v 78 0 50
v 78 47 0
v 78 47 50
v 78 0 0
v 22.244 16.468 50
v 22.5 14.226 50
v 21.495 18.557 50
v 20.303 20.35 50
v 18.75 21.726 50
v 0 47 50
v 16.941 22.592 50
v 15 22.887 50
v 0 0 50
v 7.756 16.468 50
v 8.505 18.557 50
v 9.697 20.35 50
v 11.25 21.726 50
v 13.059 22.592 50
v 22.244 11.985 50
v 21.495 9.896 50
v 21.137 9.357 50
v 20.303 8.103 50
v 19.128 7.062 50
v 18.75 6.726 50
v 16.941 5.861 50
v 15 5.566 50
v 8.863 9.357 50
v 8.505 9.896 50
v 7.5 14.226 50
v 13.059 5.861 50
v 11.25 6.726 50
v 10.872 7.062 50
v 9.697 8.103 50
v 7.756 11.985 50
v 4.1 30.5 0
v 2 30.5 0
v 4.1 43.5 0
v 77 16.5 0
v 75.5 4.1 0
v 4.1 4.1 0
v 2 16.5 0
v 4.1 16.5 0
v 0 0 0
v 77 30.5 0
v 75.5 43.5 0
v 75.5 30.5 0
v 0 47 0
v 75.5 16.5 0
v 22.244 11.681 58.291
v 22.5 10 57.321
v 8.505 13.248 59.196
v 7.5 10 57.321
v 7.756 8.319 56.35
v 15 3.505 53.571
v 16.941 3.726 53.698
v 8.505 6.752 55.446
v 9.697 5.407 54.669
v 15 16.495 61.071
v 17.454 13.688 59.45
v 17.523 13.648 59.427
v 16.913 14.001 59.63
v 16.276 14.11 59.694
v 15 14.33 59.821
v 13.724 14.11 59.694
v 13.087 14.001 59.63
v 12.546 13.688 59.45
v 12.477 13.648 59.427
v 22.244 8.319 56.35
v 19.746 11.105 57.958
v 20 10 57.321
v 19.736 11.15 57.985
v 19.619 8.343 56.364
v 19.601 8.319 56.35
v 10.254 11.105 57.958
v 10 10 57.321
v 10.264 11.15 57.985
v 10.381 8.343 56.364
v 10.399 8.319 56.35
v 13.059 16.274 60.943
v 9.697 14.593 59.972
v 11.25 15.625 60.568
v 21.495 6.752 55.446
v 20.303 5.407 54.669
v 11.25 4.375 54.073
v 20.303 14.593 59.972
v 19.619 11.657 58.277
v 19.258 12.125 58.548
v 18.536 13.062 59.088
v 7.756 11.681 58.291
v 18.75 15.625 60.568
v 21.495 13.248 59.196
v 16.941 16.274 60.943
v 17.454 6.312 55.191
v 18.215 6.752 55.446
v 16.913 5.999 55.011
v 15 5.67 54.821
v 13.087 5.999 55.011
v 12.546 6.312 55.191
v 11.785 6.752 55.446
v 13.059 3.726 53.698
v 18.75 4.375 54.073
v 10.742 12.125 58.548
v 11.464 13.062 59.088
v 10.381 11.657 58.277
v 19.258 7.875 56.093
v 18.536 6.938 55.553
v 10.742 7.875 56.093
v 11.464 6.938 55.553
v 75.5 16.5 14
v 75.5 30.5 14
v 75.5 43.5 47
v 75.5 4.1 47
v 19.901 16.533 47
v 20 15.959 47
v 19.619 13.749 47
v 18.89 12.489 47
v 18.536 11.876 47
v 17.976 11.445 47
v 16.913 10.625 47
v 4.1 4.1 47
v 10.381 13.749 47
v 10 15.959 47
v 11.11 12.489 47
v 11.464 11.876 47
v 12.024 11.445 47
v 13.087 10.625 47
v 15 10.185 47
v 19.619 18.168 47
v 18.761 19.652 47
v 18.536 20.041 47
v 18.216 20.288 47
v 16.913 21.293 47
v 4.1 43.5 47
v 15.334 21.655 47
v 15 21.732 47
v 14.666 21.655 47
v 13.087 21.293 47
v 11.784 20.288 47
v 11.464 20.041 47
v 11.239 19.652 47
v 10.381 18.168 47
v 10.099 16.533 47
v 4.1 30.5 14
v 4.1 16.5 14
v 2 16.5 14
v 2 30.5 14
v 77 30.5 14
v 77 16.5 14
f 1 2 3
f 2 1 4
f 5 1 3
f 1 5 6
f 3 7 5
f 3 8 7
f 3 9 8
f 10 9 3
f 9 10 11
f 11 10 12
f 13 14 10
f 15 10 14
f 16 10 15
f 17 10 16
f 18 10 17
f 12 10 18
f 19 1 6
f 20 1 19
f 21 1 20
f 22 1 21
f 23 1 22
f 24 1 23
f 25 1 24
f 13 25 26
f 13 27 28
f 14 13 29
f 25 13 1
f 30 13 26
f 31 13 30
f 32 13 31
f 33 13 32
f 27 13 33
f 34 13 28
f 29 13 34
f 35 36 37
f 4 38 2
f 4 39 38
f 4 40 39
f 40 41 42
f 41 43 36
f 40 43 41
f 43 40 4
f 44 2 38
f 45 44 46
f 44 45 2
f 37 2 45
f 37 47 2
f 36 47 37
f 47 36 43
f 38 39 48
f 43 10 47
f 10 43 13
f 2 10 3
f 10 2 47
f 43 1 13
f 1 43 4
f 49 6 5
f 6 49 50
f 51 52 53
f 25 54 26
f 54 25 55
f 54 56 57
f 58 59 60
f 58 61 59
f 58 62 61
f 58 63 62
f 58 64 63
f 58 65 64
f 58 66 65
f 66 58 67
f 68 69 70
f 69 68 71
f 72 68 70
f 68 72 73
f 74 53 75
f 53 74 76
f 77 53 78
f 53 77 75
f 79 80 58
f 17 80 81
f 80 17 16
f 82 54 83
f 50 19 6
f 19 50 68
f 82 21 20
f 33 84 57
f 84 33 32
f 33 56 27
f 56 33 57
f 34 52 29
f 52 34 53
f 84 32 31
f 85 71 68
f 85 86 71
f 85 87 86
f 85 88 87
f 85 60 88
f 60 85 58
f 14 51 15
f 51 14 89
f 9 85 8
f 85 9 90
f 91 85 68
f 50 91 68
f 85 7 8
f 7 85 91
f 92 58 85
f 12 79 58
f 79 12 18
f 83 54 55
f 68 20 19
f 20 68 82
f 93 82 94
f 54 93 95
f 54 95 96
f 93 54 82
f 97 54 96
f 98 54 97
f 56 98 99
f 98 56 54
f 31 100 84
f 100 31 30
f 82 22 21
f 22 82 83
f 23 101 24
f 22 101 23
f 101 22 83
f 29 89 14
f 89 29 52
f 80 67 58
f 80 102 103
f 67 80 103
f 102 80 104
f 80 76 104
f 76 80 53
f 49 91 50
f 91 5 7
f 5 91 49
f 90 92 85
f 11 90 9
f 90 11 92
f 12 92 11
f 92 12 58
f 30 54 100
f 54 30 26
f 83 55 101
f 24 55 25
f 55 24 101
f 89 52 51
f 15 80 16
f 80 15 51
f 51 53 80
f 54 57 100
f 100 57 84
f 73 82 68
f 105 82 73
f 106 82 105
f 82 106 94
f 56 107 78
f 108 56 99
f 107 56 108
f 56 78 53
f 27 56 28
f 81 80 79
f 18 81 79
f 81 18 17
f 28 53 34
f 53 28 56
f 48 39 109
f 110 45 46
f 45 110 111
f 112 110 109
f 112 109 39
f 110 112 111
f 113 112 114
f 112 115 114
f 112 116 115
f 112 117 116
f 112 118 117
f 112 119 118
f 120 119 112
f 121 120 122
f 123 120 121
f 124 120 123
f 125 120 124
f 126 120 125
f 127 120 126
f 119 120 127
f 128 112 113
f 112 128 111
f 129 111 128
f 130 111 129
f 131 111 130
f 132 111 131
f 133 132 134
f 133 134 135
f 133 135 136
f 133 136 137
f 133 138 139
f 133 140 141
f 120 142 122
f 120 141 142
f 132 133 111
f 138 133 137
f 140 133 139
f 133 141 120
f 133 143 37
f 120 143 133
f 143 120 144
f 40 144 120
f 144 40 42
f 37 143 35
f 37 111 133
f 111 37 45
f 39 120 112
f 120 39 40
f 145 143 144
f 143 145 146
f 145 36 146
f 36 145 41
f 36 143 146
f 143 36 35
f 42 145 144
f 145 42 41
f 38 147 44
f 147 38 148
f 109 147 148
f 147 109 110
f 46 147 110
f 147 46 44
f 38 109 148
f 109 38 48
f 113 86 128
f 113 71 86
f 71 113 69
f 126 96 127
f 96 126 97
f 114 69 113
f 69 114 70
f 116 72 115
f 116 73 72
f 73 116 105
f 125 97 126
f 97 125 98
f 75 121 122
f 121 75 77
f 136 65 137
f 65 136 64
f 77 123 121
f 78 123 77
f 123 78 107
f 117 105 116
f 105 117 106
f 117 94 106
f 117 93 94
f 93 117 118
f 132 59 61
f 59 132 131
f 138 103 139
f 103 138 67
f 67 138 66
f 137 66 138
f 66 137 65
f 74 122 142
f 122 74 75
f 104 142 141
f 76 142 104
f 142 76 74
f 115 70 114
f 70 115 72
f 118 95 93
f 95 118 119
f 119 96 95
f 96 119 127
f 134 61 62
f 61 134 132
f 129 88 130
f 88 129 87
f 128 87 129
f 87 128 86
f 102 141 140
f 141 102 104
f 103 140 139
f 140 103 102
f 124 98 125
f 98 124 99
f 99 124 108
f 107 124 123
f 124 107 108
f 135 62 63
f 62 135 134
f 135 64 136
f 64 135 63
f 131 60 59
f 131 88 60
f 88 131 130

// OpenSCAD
tolerance = 0.1;
difference(){
union(){
cube([78,47,50]);
translate([15,20,40]){
    rotate([30,0,0]){
cylinder(d=15,h=20);
    }
}
}
//step_down_dimensions
translate([4.1,4.1,-1]){
    color("red")
    cube([71.2+2*tolerance,39.2+2*tolerance,48]);
}//end translate
translate([2.0,16.5,0]){
    cube([10,14,14]);
    
    }
    
translate([65+2.0,16.5,0]){
    cube([10,14,14]);
    
    }
translate([15,20,40]){
    rotate([30,0,0]){
cylinder(d=10,h=30);
    }
}
}//end difference   
